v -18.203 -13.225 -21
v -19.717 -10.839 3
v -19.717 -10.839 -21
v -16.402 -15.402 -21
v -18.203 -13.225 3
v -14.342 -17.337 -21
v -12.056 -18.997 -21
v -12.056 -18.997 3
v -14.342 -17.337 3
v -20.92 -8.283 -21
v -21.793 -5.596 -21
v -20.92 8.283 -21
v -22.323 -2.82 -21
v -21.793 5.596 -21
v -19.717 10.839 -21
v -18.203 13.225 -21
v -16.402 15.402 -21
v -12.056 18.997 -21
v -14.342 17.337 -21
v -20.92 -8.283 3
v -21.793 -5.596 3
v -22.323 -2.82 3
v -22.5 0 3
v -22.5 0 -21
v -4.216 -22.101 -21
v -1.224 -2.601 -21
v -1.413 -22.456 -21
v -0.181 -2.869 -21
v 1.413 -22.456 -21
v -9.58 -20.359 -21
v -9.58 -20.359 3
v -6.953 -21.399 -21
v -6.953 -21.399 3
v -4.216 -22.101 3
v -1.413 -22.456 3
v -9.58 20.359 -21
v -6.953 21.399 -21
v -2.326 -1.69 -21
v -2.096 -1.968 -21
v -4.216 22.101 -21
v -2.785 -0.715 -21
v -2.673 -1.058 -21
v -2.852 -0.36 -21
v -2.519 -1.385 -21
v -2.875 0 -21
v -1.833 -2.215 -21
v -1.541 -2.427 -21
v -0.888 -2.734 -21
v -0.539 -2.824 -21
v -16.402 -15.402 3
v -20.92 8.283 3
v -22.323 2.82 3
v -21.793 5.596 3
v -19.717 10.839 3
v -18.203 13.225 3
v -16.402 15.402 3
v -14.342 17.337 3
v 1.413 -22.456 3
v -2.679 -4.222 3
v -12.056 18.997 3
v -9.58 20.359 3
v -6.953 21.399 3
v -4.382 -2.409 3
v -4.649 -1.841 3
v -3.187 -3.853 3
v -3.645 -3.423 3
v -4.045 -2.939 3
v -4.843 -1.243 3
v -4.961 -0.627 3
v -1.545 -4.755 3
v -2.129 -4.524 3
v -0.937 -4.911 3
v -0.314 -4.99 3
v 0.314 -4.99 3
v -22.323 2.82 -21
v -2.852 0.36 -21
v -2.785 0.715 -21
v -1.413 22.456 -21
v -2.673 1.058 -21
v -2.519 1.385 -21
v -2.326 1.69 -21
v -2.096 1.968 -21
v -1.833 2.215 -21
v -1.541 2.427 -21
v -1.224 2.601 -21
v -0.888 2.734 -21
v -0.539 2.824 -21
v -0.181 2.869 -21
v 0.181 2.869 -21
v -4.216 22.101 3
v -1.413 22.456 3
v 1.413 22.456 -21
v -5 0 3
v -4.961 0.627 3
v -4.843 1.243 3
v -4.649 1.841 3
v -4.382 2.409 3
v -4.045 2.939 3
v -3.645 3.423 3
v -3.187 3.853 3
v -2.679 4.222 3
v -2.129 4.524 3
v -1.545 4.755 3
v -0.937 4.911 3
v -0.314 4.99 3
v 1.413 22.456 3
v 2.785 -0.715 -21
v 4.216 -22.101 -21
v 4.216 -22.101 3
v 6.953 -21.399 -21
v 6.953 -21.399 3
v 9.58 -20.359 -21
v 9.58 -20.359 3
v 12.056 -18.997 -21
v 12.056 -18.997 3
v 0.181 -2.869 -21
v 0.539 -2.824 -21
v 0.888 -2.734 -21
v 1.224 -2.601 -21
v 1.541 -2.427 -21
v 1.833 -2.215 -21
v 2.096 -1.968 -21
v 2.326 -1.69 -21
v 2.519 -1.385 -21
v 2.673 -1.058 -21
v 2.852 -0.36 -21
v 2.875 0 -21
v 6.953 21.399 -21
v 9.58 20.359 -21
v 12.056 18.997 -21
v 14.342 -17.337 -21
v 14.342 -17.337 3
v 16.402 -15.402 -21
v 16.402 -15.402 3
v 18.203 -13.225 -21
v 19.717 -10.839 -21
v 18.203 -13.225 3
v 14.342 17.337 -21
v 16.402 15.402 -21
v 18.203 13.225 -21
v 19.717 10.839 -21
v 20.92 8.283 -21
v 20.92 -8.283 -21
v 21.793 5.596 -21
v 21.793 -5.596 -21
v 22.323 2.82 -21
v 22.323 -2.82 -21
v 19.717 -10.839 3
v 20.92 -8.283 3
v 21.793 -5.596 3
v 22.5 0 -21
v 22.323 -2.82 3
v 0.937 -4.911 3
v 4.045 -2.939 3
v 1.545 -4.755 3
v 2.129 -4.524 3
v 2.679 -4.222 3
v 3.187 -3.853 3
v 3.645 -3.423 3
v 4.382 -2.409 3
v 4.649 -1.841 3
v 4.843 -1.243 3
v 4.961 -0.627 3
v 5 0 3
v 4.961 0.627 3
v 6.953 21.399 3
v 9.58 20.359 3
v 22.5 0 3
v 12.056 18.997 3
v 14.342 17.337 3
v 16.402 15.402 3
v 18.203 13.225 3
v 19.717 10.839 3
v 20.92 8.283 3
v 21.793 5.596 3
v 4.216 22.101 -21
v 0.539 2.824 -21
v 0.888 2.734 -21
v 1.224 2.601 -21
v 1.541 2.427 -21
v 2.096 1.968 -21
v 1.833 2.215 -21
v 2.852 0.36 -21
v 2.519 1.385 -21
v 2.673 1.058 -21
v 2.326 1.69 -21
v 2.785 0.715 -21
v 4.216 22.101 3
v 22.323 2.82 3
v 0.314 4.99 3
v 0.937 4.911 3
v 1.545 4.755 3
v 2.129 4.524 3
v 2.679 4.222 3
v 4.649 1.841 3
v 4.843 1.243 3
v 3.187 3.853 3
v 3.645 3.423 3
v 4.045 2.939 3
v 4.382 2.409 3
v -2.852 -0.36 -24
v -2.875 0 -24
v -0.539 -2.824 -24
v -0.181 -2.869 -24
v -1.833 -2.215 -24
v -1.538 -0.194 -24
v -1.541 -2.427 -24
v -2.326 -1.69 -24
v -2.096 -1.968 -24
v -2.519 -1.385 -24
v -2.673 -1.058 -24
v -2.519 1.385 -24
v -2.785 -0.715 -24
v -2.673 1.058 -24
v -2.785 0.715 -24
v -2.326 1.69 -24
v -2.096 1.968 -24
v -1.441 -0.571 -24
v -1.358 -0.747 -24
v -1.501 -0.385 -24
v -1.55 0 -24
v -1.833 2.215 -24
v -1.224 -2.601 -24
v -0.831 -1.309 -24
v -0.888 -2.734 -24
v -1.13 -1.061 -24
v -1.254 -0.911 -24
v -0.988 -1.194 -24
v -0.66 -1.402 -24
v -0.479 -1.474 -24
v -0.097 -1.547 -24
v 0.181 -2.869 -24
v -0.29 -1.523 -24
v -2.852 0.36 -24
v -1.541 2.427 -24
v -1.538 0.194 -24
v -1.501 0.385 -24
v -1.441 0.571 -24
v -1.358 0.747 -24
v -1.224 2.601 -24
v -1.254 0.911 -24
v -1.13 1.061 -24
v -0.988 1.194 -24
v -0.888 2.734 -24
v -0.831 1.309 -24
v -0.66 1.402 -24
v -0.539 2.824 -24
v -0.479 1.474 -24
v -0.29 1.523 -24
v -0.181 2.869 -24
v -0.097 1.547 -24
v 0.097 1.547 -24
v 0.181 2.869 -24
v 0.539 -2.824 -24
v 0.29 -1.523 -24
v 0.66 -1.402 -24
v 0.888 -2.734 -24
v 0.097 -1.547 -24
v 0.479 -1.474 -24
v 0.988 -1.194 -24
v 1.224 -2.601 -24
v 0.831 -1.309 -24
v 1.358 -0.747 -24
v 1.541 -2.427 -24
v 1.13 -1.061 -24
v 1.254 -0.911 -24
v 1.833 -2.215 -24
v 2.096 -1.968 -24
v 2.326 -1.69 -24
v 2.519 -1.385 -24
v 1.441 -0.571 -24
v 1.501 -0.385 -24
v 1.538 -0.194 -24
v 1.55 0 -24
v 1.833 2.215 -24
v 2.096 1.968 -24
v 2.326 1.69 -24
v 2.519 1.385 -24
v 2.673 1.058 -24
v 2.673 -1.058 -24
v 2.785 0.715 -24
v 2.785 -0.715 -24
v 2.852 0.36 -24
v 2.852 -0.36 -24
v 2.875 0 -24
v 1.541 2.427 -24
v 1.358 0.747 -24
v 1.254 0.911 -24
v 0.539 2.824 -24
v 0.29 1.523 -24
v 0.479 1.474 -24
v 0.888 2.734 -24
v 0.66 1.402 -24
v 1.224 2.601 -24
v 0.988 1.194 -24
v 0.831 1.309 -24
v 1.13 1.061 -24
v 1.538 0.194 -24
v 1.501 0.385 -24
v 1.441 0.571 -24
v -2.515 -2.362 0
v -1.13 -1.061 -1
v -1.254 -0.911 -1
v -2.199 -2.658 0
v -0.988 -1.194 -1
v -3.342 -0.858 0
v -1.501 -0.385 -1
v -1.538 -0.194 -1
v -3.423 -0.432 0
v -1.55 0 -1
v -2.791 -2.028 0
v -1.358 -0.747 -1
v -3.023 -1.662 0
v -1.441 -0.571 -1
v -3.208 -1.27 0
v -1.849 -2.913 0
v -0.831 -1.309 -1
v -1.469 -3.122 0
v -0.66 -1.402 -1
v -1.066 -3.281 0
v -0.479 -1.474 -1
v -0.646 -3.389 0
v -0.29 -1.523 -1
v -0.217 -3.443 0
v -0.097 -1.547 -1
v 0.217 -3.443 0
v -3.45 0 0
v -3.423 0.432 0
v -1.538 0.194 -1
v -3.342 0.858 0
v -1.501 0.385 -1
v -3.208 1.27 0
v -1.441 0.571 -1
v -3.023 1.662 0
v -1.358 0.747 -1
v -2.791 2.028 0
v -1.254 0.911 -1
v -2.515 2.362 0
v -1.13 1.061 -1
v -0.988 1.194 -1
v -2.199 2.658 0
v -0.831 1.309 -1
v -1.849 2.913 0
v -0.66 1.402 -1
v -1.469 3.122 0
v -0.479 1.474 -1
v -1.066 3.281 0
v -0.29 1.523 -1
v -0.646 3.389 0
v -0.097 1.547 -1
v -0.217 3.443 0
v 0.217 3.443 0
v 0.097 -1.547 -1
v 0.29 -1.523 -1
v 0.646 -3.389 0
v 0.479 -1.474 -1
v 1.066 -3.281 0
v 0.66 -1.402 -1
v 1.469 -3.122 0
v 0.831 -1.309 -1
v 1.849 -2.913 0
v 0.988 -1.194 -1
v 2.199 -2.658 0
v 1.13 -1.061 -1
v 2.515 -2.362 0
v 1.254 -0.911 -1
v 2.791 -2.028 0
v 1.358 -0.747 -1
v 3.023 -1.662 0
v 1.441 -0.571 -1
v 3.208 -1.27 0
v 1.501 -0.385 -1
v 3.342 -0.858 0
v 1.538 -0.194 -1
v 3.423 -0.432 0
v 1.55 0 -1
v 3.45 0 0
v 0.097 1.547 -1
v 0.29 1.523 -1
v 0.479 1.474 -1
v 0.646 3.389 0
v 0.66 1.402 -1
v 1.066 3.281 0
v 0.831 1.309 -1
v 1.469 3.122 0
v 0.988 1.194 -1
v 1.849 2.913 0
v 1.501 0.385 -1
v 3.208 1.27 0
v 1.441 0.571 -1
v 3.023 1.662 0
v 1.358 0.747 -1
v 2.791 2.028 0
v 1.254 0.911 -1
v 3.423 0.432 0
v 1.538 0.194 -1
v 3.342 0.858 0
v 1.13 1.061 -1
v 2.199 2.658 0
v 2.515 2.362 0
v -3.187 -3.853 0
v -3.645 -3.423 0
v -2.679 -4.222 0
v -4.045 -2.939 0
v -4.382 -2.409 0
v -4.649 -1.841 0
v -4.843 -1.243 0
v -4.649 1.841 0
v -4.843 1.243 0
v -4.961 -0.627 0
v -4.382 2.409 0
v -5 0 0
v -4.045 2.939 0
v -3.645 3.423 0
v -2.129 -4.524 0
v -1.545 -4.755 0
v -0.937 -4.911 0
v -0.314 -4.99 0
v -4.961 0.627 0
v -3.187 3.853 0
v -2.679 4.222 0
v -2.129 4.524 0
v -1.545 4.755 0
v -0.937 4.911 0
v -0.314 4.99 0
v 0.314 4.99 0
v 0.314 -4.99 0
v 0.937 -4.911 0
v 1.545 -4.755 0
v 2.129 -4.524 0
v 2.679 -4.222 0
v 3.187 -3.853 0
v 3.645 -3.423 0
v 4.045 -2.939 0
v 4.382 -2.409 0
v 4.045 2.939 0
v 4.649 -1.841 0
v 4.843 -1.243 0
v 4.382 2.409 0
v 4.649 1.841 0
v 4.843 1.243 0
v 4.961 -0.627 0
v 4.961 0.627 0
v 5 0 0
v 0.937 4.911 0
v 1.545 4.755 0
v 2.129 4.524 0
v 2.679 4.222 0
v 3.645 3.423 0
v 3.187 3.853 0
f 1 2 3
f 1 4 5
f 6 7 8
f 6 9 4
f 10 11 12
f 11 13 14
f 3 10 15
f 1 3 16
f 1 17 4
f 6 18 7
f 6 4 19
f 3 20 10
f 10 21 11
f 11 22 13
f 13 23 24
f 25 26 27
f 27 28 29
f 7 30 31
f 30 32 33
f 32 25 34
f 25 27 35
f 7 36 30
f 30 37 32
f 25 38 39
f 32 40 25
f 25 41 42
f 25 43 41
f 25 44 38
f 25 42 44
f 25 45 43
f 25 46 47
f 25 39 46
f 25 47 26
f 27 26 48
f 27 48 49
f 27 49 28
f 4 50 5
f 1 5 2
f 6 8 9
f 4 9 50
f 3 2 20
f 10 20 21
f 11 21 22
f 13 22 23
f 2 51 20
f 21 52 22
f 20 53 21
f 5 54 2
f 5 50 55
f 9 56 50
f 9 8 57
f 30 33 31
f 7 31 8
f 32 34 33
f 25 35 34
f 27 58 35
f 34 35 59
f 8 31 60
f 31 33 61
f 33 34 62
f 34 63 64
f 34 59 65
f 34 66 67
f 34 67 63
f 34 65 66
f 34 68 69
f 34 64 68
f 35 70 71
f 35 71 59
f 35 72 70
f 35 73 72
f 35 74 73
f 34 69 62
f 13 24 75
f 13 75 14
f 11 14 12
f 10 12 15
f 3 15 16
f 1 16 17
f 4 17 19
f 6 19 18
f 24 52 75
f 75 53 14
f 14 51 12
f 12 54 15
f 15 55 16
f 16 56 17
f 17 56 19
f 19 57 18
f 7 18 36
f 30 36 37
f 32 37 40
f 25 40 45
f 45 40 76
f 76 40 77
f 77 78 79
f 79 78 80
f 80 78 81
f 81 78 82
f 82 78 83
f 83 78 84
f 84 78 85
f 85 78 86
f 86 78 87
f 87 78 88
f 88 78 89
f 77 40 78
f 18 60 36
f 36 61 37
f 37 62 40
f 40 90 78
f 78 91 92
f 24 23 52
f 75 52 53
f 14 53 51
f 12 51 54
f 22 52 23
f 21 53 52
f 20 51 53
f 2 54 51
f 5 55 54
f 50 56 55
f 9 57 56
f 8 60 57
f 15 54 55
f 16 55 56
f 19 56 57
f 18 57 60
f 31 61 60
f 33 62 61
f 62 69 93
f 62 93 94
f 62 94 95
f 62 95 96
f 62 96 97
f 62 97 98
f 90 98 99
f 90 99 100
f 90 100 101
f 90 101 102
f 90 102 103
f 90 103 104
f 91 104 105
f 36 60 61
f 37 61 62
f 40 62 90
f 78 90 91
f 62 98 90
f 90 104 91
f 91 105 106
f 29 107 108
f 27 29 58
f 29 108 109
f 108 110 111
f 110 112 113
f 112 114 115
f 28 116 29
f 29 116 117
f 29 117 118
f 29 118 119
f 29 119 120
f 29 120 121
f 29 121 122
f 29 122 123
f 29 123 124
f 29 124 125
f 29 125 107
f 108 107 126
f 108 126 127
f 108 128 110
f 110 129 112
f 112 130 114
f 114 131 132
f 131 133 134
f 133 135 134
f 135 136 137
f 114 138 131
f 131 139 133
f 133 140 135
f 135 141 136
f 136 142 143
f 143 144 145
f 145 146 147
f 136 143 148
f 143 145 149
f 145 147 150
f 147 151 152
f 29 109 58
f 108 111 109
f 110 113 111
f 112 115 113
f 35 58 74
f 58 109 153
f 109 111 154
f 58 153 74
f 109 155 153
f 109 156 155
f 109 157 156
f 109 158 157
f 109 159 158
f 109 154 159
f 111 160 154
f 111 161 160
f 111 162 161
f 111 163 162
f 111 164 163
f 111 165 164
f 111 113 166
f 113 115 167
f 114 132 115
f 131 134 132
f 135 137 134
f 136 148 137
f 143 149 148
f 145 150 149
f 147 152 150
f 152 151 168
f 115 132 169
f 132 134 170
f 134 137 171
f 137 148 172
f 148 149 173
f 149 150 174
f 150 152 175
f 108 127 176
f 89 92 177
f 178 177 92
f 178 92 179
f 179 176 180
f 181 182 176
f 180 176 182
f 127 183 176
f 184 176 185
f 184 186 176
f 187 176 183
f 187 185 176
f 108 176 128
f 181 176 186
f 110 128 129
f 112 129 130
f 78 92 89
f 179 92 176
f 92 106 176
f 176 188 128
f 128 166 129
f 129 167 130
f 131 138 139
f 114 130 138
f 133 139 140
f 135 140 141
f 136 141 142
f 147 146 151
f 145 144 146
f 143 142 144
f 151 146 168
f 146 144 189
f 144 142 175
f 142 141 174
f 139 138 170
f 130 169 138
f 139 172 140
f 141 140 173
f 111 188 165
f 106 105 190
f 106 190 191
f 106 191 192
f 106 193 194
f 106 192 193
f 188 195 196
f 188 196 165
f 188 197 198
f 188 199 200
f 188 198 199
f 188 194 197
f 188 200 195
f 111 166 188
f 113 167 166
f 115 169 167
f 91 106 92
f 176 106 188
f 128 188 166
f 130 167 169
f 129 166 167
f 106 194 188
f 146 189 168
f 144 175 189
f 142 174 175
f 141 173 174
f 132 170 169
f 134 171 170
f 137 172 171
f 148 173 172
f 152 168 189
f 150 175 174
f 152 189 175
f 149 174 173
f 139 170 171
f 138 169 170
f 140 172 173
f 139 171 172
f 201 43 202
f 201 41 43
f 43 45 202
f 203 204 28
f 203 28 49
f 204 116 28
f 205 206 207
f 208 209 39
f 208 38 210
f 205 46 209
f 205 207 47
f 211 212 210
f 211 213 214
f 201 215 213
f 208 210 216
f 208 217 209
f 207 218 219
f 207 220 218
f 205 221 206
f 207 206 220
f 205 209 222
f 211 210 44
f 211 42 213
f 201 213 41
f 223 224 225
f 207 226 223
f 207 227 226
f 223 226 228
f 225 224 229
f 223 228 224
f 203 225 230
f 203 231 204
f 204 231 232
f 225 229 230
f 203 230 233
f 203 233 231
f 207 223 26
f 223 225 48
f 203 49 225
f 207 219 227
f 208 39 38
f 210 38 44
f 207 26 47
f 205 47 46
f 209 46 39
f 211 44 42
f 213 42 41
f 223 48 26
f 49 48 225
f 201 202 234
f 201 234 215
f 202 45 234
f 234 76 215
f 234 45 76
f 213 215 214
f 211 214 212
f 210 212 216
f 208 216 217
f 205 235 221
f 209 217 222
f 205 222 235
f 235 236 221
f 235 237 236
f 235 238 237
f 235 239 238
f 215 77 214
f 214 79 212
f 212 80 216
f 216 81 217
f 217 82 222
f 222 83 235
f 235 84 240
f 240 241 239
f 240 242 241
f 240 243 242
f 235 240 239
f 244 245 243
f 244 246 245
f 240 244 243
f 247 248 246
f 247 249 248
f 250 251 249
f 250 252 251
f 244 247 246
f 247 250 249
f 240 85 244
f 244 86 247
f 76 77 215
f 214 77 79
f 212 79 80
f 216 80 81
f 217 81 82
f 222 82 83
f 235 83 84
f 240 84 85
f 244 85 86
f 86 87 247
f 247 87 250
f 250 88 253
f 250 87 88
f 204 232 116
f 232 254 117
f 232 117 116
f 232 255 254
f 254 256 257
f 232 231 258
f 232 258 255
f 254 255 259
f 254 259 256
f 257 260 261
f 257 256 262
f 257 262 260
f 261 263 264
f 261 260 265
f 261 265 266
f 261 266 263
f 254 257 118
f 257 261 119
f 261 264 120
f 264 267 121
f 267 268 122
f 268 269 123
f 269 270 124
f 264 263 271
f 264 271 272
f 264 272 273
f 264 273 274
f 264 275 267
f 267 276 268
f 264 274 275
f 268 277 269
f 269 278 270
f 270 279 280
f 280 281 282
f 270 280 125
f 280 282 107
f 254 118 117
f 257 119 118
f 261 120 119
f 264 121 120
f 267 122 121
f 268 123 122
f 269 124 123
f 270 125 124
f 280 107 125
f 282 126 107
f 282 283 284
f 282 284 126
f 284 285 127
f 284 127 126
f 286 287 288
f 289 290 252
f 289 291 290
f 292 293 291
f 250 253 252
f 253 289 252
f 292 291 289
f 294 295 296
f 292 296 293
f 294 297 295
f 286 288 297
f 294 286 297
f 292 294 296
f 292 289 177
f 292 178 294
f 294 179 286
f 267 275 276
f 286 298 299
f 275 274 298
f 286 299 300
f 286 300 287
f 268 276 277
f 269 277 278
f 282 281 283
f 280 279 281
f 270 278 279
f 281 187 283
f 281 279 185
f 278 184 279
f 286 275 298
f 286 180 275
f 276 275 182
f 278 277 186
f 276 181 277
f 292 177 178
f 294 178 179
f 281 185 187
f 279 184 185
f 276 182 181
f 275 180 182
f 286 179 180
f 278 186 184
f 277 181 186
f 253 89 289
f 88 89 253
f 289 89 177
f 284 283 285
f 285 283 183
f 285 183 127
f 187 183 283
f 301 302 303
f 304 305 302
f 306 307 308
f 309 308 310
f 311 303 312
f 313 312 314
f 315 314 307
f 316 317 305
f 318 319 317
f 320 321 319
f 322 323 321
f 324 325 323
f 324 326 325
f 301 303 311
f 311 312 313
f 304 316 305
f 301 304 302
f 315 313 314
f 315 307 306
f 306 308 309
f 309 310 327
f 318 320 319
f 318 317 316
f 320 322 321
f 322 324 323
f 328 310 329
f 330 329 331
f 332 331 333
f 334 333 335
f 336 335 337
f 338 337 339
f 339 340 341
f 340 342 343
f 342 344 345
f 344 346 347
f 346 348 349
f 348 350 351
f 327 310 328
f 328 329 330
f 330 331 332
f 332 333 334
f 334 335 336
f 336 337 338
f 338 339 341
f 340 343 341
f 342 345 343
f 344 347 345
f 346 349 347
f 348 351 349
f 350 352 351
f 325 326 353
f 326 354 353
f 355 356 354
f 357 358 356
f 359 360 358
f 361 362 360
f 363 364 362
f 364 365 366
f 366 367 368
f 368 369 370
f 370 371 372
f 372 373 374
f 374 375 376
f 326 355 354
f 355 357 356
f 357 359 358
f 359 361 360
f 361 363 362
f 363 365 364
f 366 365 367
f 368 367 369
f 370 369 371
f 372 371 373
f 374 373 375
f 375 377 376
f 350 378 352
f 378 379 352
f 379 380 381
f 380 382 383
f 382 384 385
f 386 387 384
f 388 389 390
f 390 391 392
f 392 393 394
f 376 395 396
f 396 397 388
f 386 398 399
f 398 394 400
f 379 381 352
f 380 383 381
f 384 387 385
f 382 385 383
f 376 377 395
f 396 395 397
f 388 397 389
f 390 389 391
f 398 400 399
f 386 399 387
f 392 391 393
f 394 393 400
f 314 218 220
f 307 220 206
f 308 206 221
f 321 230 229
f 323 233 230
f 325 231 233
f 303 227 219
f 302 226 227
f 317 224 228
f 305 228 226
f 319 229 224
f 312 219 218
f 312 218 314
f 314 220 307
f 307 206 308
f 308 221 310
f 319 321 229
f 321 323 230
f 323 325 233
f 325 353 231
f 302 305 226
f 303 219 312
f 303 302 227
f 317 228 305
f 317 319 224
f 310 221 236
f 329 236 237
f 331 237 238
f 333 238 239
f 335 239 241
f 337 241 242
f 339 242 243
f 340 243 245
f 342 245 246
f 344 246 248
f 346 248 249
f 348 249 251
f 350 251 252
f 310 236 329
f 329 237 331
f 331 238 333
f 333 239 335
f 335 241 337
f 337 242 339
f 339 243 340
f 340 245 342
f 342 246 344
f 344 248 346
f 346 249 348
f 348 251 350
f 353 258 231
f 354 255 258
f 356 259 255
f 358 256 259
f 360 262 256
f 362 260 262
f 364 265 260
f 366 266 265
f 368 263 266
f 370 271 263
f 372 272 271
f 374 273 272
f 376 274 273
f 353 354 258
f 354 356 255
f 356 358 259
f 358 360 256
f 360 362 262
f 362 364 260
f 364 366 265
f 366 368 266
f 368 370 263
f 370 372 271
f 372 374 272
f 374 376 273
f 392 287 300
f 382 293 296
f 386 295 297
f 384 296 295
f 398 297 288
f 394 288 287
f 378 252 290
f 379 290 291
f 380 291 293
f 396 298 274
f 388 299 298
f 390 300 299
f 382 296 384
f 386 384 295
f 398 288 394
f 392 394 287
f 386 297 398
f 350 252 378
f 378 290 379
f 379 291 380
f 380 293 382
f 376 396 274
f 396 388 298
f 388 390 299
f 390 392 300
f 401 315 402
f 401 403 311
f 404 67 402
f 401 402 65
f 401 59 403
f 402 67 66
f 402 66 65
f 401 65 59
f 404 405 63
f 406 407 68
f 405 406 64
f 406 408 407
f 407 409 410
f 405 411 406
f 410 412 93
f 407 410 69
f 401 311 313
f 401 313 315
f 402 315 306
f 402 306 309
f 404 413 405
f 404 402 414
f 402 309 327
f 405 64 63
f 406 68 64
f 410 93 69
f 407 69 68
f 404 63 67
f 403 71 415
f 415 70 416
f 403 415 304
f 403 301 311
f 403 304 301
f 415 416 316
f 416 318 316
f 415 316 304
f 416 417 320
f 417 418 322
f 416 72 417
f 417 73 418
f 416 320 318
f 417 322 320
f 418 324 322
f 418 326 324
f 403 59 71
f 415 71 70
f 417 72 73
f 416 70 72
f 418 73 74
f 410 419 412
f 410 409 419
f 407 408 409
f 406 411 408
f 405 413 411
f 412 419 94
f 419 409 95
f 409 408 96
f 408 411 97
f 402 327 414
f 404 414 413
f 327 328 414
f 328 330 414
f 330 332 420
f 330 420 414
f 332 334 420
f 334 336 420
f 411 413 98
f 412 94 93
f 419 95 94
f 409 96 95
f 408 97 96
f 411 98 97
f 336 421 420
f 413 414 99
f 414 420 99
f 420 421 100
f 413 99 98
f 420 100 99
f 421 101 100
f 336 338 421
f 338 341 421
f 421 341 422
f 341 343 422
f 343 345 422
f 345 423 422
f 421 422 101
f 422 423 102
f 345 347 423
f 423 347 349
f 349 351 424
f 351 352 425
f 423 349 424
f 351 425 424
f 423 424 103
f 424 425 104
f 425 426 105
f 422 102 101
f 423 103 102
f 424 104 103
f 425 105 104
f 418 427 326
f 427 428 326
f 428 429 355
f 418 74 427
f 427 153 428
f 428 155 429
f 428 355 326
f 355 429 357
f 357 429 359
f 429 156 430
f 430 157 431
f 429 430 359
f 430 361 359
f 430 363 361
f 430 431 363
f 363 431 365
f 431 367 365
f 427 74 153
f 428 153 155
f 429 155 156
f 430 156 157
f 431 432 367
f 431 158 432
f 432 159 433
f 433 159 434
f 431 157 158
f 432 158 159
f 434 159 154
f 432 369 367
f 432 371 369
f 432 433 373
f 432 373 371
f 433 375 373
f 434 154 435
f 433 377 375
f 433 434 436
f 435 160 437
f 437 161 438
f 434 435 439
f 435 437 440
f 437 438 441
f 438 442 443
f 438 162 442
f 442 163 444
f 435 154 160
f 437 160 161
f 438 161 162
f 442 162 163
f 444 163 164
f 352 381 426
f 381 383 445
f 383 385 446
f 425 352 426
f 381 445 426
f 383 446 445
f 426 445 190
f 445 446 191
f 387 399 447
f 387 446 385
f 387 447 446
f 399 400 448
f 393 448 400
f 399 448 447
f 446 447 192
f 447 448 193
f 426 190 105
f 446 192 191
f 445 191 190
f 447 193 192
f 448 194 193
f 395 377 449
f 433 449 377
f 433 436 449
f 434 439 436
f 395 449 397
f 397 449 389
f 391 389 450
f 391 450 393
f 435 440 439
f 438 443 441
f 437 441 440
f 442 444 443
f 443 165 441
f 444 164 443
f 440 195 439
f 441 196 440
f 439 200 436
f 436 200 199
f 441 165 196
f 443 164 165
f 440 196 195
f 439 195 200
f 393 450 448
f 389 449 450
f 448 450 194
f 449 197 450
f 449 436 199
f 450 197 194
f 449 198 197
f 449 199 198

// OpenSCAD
$fn = 50;

difference() {
	union() {
		translate(v = [0, 0, -21.0]) {
			cylinder(h = 24, r = 22.5);
		}
		#translate(v = [0, 0, -24.0]) {
			cylinder(h = 24, r = 2.875);
		}
	}
	union() {
		translate(v = [0, 0, 0]) {
			rotate(a = [0, 0, 0]) {
				difference() {
					union() {
						translate(v = [0, 0, -24.0]) {
							cylinder(h = 24, r = 1.25);
						}
						translate(v = [0, 0, -1.0]) {
							cylinder(h = 1.0, r1 = 1.55, r2 = 3.45);
						}
						translate(v = [0, 0, -24.0]) {
							cylinder(h = 24, r = 1.55);
						}
						translate(v = [0, 0, -24.0]) {
							cylinder(h = 24, r = 1.25);
						}
					}
					union();
				}
			}
		}
		#cylinder(h = 3, r = 5.0);
	}
}
